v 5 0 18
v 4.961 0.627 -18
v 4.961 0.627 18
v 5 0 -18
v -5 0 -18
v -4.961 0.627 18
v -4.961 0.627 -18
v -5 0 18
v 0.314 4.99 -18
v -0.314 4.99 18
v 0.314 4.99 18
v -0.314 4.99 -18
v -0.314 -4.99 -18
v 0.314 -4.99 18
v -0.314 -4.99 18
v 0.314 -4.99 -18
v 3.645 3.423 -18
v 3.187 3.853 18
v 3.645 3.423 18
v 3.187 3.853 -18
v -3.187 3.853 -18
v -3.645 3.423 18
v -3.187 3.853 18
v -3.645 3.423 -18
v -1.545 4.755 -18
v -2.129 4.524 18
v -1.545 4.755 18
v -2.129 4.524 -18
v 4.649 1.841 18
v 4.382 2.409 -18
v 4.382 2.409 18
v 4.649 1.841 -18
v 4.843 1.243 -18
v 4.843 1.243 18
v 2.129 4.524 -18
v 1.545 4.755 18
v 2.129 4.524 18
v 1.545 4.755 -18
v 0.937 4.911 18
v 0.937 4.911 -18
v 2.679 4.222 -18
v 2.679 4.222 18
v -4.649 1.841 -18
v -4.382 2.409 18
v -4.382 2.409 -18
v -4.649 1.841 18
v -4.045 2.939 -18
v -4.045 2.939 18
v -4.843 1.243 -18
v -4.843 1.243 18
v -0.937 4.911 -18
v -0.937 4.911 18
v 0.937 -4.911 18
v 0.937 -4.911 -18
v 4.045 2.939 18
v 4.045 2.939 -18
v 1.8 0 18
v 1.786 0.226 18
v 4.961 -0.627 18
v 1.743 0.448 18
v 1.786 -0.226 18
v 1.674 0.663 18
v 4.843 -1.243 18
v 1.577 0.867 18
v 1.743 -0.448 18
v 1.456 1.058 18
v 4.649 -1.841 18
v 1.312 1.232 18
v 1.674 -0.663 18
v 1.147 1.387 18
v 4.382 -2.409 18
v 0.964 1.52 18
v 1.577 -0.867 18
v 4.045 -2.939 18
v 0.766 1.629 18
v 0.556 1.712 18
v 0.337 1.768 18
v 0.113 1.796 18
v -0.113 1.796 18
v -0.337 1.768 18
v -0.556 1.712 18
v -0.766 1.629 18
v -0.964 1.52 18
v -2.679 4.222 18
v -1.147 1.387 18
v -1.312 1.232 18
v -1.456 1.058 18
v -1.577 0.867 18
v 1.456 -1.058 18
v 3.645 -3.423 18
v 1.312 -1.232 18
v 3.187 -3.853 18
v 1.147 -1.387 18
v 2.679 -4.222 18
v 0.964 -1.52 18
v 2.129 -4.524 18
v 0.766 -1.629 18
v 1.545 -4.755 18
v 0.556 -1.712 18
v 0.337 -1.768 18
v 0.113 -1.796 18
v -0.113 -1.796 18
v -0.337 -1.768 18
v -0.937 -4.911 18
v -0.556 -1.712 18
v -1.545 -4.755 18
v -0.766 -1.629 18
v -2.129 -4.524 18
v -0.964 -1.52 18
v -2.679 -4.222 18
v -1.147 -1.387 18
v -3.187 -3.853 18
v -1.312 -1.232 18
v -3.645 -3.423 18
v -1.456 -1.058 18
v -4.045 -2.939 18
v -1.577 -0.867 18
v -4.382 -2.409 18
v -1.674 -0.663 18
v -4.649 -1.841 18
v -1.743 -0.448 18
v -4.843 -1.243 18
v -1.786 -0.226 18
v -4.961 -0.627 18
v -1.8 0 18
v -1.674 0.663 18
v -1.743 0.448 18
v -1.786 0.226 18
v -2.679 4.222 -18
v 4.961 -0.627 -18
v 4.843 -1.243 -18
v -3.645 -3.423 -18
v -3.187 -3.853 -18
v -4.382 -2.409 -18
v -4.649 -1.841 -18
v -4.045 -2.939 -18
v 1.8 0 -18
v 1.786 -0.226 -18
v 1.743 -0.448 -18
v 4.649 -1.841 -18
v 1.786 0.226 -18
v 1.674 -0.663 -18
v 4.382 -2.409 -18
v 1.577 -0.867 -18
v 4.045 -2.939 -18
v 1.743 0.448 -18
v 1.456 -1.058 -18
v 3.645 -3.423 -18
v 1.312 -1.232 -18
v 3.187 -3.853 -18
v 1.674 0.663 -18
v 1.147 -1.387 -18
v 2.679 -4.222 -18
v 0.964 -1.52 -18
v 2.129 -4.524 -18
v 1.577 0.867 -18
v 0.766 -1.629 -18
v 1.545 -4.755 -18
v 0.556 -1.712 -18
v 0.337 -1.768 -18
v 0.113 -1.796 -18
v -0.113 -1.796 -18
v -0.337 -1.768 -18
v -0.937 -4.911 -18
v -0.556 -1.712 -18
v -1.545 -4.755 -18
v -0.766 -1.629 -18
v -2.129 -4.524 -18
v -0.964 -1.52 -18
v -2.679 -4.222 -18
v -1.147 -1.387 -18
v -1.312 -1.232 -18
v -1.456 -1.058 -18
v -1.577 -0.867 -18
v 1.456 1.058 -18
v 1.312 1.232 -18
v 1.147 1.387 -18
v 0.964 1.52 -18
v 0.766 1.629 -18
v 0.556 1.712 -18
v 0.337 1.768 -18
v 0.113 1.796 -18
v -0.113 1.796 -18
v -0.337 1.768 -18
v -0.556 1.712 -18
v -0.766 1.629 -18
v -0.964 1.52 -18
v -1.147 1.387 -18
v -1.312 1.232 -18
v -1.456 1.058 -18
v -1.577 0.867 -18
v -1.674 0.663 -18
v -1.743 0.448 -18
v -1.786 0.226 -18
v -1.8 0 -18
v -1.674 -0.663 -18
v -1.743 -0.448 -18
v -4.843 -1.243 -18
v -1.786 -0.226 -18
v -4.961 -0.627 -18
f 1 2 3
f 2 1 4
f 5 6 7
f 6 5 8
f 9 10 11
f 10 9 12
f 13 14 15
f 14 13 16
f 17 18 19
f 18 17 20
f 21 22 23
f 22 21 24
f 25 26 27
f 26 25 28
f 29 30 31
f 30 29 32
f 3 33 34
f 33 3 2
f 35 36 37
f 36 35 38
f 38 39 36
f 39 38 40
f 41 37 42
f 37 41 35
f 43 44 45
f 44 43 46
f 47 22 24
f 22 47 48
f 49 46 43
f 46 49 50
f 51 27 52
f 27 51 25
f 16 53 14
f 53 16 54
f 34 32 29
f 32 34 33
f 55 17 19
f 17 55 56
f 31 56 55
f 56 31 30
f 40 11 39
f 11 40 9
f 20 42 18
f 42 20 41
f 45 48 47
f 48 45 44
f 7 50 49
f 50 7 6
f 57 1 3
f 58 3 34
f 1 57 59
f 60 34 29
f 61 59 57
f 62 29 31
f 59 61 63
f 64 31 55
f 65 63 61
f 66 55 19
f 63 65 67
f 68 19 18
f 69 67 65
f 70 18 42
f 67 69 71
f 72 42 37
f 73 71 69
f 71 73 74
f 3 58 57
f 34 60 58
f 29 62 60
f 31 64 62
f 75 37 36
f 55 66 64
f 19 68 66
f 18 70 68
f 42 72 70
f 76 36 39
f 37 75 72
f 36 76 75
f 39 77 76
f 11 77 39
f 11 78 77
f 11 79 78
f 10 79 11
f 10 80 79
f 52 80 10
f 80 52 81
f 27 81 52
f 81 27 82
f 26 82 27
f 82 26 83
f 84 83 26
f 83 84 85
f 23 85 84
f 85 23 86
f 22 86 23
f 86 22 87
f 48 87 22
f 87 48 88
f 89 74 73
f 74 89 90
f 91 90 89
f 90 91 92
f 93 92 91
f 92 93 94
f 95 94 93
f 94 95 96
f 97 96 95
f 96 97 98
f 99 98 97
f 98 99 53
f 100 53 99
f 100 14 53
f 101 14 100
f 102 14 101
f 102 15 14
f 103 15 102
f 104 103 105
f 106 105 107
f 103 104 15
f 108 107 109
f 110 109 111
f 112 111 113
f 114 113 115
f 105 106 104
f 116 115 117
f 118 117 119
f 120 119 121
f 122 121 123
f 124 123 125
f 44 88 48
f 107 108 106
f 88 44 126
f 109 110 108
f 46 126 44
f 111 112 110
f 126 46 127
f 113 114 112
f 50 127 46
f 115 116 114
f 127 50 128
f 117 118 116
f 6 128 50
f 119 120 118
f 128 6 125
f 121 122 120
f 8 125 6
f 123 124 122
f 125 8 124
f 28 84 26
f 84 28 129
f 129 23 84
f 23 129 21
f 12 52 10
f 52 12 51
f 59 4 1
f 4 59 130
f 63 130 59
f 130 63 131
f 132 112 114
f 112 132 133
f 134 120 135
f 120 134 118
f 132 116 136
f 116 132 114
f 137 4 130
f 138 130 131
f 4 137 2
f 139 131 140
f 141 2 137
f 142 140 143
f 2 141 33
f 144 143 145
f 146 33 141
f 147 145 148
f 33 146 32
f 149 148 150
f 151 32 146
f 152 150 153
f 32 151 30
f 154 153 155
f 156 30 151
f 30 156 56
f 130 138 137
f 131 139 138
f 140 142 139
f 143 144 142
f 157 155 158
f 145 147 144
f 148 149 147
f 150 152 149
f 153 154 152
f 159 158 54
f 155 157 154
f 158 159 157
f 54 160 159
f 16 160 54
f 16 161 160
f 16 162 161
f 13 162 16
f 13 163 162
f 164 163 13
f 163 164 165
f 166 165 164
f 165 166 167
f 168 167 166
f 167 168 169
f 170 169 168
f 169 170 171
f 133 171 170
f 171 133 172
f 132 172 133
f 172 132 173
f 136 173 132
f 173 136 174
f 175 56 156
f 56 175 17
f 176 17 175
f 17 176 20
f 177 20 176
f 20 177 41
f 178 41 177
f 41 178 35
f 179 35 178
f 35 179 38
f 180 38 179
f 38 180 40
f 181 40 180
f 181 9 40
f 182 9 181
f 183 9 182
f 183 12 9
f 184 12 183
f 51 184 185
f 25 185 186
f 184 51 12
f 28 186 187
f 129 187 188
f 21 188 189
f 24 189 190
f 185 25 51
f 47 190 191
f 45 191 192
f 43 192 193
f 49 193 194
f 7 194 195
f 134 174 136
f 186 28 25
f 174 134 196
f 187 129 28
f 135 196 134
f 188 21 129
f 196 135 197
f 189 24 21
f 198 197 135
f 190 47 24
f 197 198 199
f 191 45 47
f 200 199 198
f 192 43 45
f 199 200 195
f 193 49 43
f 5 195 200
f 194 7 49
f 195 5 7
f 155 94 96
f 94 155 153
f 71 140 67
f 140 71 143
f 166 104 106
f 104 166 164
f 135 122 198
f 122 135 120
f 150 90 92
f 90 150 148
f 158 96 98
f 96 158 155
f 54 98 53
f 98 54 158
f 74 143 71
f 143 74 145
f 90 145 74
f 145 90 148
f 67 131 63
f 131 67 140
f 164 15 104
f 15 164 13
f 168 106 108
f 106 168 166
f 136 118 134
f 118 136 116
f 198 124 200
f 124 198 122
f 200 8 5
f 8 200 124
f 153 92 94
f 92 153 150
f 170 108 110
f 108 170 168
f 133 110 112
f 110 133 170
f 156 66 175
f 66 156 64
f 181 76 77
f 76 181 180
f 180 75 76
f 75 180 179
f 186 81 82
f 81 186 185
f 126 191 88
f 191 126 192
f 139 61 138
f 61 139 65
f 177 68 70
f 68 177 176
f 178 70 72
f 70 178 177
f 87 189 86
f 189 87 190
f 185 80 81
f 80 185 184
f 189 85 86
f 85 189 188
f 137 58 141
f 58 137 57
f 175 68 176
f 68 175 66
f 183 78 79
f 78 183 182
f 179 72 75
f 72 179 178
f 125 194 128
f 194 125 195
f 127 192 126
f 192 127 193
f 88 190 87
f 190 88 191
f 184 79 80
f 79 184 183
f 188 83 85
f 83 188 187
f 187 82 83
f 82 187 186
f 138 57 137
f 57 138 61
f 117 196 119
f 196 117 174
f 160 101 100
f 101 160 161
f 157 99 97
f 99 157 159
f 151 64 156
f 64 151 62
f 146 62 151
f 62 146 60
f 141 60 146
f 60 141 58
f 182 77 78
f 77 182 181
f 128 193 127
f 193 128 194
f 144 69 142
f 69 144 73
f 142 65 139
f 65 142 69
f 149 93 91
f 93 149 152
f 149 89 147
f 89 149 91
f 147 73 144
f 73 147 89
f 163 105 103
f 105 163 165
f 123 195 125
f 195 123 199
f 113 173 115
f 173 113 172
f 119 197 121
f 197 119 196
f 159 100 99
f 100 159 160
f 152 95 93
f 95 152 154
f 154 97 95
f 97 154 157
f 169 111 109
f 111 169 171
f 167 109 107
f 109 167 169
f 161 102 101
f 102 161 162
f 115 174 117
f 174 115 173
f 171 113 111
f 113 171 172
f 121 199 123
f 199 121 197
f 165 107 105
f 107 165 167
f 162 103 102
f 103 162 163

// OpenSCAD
$fn = 50;


difference() {
	union() {
		translate(v = [0, 0, -18.0000000000]) {
			cylinder(h = 36, r = 5.0000000000);
		}
	}
	union() {
		translate(v = [0, 0, -100.0000000000]) {
			cylinder(h = 200, r = 1.8000000000);
		}
	}
}
